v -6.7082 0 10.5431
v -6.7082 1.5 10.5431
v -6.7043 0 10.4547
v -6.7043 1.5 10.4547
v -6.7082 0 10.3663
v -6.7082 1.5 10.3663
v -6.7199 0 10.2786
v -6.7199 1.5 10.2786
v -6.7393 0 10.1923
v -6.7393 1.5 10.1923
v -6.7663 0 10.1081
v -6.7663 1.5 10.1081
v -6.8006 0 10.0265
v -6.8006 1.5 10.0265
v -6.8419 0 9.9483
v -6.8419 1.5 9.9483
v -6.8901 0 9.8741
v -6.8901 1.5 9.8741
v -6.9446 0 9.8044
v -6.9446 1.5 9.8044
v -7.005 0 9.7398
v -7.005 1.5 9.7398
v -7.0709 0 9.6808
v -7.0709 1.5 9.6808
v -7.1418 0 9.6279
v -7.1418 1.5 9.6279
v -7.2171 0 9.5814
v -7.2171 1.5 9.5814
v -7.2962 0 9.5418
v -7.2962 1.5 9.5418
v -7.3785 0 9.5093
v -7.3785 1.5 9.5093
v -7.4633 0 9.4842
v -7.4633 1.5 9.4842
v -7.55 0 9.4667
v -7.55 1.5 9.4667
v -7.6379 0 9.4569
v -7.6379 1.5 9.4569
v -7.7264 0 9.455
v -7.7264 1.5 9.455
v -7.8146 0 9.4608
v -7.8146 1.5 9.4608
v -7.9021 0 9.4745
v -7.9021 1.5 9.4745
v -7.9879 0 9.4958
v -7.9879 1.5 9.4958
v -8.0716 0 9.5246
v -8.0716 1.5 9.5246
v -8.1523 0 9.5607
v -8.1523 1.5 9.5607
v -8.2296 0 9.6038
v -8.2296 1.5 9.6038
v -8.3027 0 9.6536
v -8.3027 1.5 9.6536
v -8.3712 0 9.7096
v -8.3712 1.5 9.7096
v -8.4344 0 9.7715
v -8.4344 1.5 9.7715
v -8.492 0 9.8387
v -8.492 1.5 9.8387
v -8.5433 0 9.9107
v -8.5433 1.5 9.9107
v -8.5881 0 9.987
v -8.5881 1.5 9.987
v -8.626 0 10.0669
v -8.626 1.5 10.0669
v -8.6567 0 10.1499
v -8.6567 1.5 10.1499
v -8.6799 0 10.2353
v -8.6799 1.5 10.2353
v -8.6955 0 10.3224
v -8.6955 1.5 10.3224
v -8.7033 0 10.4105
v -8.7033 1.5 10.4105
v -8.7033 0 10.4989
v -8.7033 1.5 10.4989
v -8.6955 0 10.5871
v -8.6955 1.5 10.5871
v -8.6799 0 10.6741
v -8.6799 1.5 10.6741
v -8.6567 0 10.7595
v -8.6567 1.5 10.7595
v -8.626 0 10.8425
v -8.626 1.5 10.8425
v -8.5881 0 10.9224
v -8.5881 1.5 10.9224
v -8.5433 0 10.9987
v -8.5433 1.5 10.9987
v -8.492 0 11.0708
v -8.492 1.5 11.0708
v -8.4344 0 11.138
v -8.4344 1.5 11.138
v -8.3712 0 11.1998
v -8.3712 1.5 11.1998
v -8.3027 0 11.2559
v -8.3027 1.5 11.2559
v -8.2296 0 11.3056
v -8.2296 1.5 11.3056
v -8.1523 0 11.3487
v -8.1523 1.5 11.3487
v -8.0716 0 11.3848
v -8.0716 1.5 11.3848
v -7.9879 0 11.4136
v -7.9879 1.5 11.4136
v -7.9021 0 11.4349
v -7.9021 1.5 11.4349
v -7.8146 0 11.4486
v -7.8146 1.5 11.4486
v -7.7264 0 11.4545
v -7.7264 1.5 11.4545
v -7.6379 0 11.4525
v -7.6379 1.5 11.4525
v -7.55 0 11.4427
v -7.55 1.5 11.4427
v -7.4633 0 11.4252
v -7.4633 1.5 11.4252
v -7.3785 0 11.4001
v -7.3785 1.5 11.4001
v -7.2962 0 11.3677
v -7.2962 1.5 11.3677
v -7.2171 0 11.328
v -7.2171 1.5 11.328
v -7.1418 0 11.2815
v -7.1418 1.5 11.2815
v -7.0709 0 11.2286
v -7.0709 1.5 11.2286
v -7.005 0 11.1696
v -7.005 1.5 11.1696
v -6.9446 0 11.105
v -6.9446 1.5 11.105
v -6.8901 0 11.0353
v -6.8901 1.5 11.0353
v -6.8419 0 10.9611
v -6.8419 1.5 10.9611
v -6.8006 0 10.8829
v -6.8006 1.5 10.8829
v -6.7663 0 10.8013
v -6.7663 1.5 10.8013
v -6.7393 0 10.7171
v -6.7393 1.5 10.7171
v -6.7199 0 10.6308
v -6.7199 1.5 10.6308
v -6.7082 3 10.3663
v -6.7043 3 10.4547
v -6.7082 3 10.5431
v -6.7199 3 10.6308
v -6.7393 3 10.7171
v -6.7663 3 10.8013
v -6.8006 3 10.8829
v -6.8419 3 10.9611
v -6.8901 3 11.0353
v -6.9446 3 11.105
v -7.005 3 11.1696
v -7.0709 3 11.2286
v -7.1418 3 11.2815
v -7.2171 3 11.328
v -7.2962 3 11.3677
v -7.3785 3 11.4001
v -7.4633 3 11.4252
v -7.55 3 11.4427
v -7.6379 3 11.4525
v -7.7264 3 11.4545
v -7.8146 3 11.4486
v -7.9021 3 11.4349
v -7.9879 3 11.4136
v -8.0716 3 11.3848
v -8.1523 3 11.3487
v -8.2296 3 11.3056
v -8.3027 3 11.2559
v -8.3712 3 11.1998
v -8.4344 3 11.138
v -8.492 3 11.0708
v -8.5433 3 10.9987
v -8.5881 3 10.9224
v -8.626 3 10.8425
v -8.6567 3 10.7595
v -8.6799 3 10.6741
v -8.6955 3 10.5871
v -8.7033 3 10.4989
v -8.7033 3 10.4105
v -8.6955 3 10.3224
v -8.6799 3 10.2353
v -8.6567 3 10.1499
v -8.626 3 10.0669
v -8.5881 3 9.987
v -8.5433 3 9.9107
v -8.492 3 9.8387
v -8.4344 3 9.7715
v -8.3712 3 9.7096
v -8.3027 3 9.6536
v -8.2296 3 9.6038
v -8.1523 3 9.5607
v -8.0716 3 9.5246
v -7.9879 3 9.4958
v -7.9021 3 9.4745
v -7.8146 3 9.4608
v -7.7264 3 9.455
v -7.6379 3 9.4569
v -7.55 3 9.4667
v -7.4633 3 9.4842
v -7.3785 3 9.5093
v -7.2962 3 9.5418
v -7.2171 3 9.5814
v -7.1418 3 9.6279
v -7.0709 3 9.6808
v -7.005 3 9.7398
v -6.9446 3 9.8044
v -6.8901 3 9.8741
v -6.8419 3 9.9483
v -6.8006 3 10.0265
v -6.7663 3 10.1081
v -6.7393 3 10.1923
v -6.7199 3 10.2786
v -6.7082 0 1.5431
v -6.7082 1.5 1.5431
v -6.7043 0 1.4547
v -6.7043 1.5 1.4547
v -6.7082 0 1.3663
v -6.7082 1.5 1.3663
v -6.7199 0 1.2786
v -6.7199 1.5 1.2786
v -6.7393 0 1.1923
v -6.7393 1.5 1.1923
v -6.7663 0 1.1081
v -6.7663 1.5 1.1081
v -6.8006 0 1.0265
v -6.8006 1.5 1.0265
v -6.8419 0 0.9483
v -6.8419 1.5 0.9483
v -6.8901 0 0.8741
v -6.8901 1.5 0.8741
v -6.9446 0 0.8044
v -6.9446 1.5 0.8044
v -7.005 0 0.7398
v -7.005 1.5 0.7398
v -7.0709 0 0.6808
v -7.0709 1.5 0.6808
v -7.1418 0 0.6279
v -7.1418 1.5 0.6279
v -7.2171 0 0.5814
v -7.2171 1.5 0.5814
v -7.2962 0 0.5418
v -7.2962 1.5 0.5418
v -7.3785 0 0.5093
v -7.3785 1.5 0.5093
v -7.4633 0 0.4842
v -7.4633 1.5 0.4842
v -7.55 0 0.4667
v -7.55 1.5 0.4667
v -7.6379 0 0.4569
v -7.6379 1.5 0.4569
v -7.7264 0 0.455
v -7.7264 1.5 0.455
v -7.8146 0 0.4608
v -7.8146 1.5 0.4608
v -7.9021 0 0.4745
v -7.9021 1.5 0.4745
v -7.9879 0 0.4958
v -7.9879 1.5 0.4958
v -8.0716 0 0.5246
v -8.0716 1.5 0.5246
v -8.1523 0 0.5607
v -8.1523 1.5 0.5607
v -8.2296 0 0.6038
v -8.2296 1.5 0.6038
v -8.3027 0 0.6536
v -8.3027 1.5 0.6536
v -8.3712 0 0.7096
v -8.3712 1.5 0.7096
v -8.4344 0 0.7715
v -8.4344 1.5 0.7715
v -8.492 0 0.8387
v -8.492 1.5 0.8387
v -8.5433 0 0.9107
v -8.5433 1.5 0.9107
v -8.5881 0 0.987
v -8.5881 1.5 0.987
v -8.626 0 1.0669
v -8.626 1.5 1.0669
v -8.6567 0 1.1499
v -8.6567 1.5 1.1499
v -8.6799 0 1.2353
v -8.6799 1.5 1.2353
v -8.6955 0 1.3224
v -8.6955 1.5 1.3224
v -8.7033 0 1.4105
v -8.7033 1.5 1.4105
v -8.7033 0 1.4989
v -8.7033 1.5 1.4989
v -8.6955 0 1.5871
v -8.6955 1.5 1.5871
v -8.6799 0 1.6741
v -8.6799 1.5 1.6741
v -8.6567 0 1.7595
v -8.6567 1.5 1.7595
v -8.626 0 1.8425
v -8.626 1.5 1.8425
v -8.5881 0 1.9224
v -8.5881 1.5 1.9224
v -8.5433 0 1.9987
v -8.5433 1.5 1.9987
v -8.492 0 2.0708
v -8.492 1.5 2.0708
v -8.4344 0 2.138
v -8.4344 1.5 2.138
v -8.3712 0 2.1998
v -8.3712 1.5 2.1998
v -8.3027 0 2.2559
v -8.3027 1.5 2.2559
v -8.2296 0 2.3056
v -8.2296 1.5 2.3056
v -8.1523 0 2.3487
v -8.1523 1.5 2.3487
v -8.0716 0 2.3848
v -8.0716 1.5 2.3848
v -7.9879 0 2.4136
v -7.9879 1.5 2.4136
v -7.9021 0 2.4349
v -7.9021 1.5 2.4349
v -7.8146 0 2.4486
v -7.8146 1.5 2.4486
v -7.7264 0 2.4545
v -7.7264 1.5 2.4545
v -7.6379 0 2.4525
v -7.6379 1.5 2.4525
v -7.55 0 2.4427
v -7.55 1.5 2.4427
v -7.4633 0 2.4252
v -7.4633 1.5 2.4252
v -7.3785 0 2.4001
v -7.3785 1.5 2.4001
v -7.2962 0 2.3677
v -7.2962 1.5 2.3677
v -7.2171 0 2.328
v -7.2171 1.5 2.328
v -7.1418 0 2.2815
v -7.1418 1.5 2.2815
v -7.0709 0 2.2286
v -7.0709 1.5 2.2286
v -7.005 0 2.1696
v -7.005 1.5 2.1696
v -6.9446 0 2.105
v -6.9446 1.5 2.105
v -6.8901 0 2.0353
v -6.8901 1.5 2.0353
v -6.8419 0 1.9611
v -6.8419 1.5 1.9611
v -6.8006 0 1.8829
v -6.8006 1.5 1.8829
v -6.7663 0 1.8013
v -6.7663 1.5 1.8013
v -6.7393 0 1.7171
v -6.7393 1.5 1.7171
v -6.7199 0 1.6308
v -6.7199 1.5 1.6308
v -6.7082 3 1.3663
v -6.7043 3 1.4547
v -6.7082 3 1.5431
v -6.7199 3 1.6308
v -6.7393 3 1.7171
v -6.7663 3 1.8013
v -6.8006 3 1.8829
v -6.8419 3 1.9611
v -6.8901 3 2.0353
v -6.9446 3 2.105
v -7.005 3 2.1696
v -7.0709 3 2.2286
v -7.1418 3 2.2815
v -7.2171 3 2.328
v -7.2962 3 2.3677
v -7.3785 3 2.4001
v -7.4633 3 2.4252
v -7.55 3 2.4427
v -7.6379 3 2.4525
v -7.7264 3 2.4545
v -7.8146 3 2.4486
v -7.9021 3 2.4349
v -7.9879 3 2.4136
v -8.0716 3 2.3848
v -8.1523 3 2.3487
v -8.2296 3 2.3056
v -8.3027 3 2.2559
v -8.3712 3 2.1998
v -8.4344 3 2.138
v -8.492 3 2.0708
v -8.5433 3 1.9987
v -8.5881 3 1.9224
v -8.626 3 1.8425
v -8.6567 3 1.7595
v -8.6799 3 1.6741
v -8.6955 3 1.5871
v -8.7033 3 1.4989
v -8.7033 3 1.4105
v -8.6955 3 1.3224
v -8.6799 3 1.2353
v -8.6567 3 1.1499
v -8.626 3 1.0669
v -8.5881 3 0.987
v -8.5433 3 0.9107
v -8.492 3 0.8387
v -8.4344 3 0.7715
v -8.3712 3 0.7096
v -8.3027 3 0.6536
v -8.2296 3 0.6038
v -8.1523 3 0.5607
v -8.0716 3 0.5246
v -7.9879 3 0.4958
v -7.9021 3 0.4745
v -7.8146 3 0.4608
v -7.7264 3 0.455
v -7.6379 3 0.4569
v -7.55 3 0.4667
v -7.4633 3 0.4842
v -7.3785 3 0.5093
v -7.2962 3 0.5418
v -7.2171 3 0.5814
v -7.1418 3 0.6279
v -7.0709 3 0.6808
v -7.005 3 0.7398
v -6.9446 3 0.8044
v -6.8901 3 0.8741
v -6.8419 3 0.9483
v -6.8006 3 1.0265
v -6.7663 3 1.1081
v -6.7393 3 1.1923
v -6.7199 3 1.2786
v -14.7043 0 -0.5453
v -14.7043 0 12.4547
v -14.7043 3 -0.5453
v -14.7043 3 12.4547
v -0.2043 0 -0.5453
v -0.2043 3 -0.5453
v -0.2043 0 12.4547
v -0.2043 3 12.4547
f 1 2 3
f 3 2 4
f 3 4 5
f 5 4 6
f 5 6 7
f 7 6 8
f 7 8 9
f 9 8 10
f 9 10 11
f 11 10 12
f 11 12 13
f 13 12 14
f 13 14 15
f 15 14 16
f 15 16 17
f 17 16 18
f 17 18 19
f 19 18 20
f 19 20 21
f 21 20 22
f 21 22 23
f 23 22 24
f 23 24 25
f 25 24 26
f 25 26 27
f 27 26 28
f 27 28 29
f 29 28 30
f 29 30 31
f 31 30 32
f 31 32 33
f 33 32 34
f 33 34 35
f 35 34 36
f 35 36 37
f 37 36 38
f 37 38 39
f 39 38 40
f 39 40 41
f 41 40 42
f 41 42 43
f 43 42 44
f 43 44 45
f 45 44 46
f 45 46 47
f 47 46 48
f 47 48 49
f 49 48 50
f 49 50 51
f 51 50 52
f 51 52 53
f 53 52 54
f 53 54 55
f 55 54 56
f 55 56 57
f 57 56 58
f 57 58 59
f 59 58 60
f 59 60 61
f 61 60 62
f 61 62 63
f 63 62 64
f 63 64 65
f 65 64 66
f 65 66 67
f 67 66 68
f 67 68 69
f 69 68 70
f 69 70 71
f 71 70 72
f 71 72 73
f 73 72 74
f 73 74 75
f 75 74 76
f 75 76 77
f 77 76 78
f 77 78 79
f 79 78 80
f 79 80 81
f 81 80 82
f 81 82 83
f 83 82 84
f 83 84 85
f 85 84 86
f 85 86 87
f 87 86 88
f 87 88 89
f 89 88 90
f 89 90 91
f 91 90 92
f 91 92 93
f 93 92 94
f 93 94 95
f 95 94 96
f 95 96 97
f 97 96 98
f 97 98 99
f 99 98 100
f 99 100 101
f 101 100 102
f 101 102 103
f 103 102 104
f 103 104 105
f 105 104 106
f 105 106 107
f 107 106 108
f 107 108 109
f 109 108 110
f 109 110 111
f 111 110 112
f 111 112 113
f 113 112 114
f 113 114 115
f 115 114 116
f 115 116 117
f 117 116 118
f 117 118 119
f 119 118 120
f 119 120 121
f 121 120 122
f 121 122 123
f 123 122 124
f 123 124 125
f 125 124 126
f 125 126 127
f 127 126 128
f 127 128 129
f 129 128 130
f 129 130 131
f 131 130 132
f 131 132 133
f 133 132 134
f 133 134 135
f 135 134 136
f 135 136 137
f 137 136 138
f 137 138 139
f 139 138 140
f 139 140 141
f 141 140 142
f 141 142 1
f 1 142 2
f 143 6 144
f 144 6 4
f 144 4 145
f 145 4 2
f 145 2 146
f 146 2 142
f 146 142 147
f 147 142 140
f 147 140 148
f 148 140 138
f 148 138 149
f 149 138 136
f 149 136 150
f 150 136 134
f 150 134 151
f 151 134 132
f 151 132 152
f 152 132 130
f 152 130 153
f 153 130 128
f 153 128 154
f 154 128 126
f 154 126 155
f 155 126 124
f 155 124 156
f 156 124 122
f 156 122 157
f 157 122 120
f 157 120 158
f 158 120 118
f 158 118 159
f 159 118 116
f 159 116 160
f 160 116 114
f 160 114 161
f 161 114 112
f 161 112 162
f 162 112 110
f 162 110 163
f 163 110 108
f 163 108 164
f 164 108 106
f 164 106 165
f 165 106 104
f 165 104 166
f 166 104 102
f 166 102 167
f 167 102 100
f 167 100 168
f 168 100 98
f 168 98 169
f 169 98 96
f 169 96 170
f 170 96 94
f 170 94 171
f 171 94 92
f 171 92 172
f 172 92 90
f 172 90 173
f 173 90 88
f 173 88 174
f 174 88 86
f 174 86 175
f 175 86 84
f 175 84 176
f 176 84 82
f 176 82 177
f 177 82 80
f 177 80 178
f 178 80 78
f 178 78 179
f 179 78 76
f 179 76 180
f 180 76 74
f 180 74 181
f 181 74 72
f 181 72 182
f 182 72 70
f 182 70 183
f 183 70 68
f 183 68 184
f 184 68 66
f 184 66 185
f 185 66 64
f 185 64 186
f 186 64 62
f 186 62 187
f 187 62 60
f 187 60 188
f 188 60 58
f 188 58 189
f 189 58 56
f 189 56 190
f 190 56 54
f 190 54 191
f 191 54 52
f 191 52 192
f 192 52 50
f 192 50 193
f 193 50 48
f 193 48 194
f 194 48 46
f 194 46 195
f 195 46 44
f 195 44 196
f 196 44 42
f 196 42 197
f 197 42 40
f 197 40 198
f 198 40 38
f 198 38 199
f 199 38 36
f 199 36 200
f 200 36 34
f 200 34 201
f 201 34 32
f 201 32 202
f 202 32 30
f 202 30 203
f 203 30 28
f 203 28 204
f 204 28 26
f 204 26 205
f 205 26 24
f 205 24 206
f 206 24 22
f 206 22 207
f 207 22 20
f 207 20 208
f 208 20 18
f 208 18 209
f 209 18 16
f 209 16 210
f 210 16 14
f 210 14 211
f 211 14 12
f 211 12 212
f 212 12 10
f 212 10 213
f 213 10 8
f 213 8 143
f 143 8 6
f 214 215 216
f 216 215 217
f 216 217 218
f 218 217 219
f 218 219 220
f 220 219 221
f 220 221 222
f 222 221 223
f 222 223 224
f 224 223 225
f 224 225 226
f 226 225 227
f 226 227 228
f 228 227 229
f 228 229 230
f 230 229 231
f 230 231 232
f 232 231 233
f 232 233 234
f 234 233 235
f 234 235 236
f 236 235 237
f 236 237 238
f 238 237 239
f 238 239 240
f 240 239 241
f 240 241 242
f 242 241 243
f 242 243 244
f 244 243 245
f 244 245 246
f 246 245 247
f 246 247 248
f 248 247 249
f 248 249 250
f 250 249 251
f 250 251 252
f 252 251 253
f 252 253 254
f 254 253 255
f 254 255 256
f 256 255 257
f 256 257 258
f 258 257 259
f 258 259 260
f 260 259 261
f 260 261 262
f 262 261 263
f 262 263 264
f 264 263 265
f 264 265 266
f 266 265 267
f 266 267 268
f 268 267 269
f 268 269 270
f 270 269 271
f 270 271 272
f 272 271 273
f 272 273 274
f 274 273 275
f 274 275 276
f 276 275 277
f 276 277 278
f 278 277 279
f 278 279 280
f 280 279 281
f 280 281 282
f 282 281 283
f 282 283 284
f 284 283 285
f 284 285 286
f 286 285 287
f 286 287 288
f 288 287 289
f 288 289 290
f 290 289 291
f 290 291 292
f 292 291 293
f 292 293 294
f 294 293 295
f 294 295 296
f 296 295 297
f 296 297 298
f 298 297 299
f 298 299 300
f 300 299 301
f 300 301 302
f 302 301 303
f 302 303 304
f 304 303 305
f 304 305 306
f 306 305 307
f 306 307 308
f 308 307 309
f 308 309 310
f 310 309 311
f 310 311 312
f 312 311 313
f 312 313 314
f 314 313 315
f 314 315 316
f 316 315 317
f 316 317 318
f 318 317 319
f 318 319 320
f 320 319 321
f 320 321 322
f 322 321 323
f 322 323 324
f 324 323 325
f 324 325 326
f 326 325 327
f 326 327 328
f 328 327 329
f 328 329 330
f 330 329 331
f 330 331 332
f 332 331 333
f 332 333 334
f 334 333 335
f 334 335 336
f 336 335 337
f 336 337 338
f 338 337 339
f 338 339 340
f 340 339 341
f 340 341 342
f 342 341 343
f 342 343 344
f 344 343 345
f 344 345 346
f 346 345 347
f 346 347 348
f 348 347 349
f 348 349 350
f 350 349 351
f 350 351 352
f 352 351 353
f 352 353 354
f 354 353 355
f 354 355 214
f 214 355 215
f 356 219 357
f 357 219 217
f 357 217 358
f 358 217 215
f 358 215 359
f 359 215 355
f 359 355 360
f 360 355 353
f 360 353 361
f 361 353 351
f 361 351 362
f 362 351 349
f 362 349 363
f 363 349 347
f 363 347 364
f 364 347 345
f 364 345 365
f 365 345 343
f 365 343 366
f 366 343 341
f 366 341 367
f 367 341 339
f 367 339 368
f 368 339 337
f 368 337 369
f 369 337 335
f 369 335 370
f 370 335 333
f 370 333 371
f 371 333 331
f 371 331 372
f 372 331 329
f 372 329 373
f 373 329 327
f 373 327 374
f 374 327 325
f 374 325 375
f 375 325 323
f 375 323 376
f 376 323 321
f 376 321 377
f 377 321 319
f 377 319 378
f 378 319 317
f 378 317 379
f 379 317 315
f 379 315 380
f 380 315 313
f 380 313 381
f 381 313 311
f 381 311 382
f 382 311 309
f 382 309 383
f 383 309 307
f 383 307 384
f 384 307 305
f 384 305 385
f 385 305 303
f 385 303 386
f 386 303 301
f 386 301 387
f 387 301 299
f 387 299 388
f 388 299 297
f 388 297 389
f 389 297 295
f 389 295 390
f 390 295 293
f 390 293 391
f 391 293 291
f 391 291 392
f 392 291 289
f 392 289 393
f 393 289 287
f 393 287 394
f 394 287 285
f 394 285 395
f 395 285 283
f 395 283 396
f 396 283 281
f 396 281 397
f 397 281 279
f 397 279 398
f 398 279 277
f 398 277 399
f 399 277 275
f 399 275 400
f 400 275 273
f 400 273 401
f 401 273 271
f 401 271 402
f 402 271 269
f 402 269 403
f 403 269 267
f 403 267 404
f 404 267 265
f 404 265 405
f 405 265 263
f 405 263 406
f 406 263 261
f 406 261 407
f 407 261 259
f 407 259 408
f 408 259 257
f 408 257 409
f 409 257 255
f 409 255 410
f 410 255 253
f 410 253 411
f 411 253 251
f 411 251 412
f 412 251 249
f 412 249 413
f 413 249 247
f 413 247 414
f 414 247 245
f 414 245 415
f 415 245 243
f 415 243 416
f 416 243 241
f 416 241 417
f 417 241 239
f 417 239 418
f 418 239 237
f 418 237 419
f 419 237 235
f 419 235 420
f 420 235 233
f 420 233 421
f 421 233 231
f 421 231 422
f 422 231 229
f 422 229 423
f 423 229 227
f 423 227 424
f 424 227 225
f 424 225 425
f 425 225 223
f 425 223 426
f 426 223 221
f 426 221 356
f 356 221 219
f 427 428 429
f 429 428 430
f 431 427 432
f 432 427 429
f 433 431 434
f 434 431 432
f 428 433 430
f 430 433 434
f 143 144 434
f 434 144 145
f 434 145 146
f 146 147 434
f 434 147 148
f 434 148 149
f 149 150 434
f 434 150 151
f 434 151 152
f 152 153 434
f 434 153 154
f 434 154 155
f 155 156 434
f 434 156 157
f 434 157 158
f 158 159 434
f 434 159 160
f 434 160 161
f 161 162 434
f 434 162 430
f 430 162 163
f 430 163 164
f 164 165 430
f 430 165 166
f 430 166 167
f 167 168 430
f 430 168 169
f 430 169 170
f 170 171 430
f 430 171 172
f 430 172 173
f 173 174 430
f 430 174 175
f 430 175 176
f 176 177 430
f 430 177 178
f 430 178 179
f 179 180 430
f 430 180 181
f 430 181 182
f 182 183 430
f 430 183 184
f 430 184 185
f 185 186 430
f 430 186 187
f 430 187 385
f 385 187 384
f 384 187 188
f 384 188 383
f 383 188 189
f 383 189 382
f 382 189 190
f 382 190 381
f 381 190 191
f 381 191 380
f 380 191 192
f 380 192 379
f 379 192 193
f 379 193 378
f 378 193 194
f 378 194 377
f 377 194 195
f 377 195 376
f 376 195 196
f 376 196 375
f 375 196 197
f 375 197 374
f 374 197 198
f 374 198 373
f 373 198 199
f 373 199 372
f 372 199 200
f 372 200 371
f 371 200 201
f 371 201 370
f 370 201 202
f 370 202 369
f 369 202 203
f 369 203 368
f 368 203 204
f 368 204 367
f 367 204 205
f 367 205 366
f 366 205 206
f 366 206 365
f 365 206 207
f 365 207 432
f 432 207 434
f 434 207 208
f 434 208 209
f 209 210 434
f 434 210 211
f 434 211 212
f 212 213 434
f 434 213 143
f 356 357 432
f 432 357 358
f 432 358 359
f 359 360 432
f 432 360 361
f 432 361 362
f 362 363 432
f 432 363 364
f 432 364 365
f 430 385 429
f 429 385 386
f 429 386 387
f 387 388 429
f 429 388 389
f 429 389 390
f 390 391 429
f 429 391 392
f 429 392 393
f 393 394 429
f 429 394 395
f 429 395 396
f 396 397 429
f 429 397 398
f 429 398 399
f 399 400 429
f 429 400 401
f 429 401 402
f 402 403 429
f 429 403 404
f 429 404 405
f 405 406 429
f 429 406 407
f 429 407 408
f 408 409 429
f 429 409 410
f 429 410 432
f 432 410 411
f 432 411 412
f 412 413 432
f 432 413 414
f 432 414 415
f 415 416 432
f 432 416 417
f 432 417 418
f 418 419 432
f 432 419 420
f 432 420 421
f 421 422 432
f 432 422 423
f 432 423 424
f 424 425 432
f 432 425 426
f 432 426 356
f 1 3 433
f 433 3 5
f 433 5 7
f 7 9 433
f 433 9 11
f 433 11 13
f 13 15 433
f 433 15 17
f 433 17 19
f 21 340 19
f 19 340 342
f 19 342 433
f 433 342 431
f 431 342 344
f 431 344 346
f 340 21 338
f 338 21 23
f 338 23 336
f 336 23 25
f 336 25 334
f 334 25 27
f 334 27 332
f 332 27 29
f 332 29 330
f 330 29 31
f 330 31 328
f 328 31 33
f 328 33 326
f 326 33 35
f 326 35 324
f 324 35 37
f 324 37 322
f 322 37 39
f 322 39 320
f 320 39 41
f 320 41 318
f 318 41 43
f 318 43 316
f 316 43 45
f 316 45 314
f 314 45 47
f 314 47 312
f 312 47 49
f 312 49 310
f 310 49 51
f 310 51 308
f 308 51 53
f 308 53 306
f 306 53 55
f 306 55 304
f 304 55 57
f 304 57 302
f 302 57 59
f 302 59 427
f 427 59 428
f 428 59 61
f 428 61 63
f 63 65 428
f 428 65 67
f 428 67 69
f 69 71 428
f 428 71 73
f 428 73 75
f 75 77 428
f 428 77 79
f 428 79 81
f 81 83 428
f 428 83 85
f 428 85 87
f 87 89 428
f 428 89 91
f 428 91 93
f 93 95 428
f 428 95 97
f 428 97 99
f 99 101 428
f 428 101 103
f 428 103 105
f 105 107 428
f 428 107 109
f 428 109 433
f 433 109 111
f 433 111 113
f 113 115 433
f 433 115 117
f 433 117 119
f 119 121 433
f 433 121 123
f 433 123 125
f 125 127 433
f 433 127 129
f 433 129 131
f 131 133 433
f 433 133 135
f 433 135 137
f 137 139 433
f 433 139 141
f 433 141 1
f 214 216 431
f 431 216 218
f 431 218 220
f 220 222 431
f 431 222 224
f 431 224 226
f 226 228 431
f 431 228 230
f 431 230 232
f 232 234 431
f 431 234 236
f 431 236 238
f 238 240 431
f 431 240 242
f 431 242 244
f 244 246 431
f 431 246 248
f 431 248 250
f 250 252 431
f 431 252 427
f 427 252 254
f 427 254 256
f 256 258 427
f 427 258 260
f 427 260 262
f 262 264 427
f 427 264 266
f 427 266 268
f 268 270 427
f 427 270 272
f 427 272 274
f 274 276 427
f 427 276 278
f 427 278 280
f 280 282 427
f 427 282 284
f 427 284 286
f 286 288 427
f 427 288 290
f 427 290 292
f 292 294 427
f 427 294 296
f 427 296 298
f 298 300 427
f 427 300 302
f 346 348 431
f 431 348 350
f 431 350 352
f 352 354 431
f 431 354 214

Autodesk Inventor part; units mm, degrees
ref_plane "YZ Plane" through (0, 0, 0) normal (1, 0, 0) x (0, 1, 0)
ref_plane "XZ Plane" through (0, 0, 0) normal (0, 1, 0) x (-1, 0, 0)
ref_plane "XY Plane" through (0, 0, 0) normal (0, 0, 1) x (1, 0, 0)
sketch "Sketch1" plane through (0, 0, 0) normal (0, 1, 0) x (-1, 0, 0)
  line L0 (14.7043, 12.4547) -> (0.2043, 12.4547)
  line L1 (0.2043, 12.4547) -> (0.2043, -0.5453)
  line L2 (0.2043, -0.5453) -> (14.7043, -0.5453)
  line L3 (14.7043, -0.5453) -> (14.7043, 12.4547)
  line L4 (14.7043, 12.4547) -> (0.2043, -0.5453) construction
  line L5 (0.2043, 12.4547) -> (14.7043, -0.5453) construction
  point P0 (0, 0)
  point P1 (7.4543, 5.9547)
  dimension "d0" = 14.5
  dimension "d1" = 13
extrude "Extrusion1" add sketch "Sketch1" along normal blind 3
sketch "Sketch2" plane through (0, 3, 0) normal (0, 1, 0) x (1, 0, 0)
  circle A0 centre (-7.7043, -10.4547) radius 1
  circle A1 centre (-7.7043, -1.4547) radius 1
  line L0 (-14.7043, -12.4547) -> (-0.2043, -12.4547) projected
  line L1 (-14.7043, 0.5453) -> (-14.7043, -12.4547) projected
  line L2 (-0.2043, 0.5453) -> (-14.7043, 0.5453) projected
  point P0 (0, 0)
  dimension "d4" = 2
  dimension "d5" = 2
  dimension "d6" = 2
  dimension "d7" = 7
  dimension "d8" = 7
  dimension "d9" = 2
extrude "Extrusion2" cut sketch "Sketch2" against normal blind 3
properties part number "USB holder"
